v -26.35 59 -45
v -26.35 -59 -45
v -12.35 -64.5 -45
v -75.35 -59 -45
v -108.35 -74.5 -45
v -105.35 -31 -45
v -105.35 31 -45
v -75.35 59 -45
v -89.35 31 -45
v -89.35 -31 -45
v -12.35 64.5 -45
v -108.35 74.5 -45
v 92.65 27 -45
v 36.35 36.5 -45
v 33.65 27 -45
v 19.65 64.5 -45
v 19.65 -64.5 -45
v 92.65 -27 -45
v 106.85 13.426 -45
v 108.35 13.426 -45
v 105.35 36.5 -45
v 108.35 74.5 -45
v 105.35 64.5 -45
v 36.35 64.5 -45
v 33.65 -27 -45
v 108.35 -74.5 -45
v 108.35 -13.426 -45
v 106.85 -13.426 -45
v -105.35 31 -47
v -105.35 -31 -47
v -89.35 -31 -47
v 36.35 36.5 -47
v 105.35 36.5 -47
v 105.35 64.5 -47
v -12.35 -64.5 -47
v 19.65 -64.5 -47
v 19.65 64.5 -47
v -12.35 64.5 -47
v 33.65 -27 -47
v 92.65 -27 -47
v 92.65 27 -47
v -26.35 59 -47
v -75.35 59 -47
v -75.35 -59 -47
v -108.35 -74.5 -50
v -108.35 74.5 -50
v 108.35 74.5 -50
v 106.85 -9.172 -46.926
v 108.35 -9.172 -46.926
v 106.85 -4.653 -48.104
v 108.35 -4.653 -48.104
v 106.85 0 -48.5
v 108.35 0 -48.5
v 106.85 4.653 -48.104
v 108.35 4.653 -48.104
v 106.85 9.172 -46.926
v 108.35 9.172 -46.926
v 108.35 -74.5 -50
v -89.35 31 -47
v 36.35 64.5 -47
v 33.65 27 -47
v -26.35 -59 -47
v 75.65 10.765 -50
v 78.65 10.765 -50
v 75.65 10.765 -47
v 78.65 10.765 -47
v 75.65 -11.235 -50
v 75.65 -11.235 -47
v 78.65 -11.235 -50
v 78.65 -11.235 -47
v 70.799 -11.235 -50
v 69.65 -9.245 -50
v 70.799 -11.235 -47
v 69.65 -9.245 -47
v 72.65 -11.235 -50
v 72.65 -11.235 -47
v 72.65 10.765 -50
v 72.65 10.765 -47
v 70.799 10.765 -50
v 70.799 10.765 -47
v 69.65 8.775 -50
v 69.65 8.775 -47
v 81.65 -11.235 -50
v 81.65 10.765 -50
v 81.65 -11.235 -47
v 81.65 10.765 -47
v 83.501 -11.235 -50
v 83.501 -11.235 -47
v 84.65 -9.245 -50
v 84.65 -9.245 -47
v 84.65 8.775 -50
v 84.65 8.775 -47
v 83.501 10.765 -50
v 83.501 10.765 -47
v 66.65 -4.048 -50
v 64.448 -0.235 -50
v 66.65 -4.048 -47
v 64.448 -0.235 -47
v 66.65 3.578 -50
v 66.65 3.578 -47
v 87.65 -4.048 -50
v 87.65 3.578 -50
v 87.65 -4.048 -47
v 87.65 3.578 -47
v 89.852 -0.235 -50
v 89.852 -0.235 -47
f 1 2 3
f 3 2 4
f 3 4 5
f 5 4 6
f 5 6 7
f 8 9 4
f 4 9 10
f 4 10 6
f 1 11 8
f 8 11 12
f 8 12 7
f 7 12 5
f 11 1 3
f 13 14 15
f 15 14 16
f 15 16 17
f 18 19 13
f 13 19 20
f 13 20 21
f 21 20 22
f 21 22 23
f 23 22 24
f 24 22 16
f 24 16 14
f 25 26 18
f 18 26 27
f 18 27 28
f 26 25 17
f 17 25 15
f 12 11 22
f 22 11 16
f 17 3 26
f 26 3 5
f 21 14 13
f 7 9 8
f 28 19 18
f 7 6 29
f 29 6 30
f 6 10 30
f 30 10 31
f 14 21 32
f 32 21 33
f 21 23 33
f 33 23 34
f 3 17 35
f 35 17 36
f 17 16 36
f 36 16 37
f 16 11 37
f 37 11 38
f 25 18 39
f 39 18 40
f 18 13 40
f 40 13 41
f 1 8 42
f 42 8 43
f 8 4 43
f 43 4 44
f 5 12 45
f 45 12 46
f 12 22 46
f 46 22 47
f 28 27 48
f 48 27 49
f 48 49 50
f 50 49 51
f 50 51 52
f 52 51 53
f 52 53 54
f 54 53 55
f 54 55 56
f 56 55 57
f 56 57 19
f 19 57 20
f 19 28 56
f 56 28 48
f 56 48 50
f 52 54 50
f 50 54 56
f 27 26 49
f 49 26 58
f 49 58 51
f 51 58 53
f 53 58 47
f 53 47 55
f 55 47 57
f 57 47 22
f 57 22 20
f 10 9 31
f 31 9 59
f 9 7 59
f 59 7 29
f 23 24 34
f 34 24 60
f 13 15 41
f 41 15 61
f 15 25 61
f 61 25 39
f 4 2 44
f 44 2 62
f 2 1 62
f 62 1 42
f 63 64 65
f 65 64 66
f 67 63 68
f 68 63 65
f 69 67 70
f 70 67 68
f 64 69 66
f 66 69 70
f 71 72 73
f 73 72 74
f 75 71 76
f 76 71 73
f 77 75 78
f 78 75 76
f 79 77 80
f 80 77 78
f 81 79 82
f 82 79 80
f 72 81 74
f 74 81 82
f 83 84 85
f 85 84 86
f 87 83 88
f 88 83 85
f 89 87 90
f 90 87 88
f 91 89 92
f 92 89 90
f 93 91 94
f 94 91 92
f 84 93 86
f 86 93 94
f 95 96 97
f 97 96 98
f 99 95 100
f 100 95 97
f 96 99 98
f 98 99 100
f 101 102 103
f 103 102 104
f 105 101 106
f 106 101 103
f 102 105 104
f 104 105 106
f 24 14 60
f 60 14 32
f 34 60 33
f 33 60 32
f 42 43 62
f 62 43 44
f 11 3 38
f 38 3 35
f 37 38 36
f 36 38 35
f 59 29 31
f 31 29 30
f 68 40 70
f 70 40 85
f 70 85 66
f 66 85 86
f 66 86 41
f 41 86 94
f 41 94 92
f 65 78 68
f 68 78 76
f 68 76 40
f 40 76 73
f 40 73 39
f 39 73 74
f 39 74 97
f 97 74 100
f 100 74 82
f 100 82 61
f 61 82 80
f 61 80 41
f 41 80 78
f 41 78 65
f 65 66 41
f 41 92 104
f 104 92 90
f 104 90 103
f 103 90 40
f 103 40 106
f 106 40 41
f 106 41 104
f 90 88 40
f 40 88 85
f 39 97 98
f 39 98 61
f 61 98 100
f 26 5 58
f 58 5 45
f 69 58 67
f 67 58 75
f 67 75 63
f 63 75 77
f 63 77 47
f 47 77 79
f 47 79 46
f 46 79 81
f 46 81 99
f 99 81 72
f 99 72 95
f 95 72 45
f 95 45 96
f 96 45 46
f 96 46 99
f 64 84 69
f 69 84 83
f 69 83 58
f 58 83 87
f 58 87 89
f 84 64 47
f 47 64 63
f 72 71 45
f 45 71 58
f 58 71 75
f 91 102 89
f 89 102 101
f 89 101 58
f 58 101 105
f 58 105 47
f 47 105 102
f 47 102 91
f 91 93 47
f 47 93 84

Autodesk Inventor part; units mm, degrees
ref_plane "YZ Plane" through (0, 0, 0) normal (1, 0, 0) x (0, 1, 0)
ref_plane "XZ Plane" through (0, 0, 0) normal (0, 1, 0) x (-1, 0, 0)
ref_plane "XY Plane" through (0, 0, 0) normal (0, 0, 1) x (1, 0, 0)
sketch "Sketch1" plane through (0, 0, 0) normal (0, 0, 1) x (1, 0, 0)
  line L0 (-108.35, -74.5) -> (108.35, -74.5)
  line L1 (108.35, -74.5) -> (108.35, 74.5)
  line L2 (108.35, 74.5) -> (-108.35, 74.5)
  line L3 (-108.35, 74.5) -> (-108.35, -74.5)
  line L4 (-108.35, -74.5) -> (108.35, 74.5) construction
  line L5 (108.35, -74.5) -> (-108.35, 74.5) construction
  point P0 (0, 0)
  dimension "d0" = 216.7
  dimension "d1" = 149
extrude "MainInnerBodyExtrusion" add sketch "Sketch1" against normal blind 50
sketch "Sketch3" plane through (0, 0, 0) normal (0, 0, 1) x (1, 0, 0)
  line L0 (33.65, -27) -> (92.65, -27)
  line L1 (92.65, -27) -> (92.65, 27)
  line L2 (92.65, 27) -> (33.65, 27)
  line L3 (33.65, 27) -> (33.65, -27)
  line L4 (33.65, -27) -> (92.65, 27) construction
  line L5 (92.65, -27) -> (33.65, 27) construction
  line L6 (108.35, -74.5) -> (108.35, 74.5) projected
  line L7 (0, 0) -> (108.35, 0) construction
  line L8 (-108.35, -74.5) -> (-108.35, 74.5) construction
  line L9 (-108.35, 74.5) -> (-108.35, -74.5) projected
  point P0 (63.15, 0)
  point P1 (63.15, 0)
  dimension "d5" = 15.7
  dimension "d6" = 54
  dimension "d7" = 59
extrude "HoleForCamerabase" cut sketch "Sketch3" against normal blind 47
sketch "Sketch4" plane through (0, 0, 0) normal (0, 0, 1) x (1, 0, 0)
  line L0 (0, 0) -> (-108.35, 0) construction
  line L1 (-108.35, -74.5) -> (-108.35, 74.5) construction
  line L2 (-105.35, -31) -> (-89.35, -31)
  line L3 (-89.35, -31) -> (-89.35, 31)
  line L4 (-89.35, 31) -> (-105.35, 31)
  line L5 (-105.35, 31) -> (-105.35, -31)
  line L6 (-105.35, -31) -> (-89.35, 31) construction
  line L7 (-89.35, -31) -> (-105.35, 31) construction
  point P0 (-97.35, 0)
  dimension "d13" = 16
  dimension "d14" = 62
  dimension "d15" = 3
extrude "HoleForFan" cut sketch "Sketch4" against normal blind 47
sketch "Sketch6" plane through (0, 0, 0) normal (0, 0, 1) x (1, 0, 0)
  line L0 (-108.35, -74.5) -> (-108.35, 74.5) construction
  line L1 (-108.35, 0) -> (108.35, 0) construction
  line L2 (108.35, 74.5) -> (108.35, -74.5) construction
  line L3 (-12.35, -64.5) -> (19.65, -64.5)
  line L4 (19.65, -64.5) -> (19.65, 64.5)
  line L5 (19.65, 64.5) -> (-12.35, 64.5)
  line L6 (-12.35, 64.5) -> (-12.35, -64.5)
  line L7 (-12.35, -64.5) -> (19.65, 64.5) construction
  line L8 (19.65, -64.5) -> (-12.35, 64.5) construction
  line L9 (33.65, -27) -> (33.65, 27) projected
  point P0 (0, 0)
  point P1 (3.65, 0)
  dimension "d20" = 32
  dimension "d21" = 129
  dimension "d88" = 14
extrude "HoleForPi" cut sketch "Sketch6" against normal blind 47
sketch "Sketch7" plane through (0, 0, 0) normal (0, 0, 1) x (1, 0, 0)
  line L0 (0, 0) -> (-108.35, 0) construction
  line L1 (-108.35, 74.5) -> (-108.35, -74.5) construction
  line L2 (-75.35, -59) -> (-26.35, -59)
  line L3 (-26.35, -59) -> (-26.35, 59)
  line L4 (-26.35, 59) -> (-75.35, 59)
  line L5 (-75.35, 59) -> (-75.35, -59)
  line L6 (-75.35, -59) -> (-26.35, 59) construction
  line L7 (-26.35, -59) -> (-75.35, 59) construction
  line L8 (-12.35, -64.5) -> (-12.35, 64.5) projected
  line L9 (-89.35, 31) -> (-89.35, -31) construction
  point P0 (-50.85, 0)
  dimension "d25" = 14
  dimension "d26" = 49
  dimension "d27" = 118
extrude "HoleForPoeAdapter" cut sketch "Sketch7" against normal blind 47
sketch "Sketch10" plane through (0, 0, 0) normal (0, 0, 1) x (1, 0, 0)
  line L0 (36.35, 36.5) -> (105.35, 36.5)
  line L1 (105.35, 36.5) -> (105.35, 64.5)
  line L2 (105.35, 64.5) -> (36.35, 64.5)
  line L3 (36.35, 64.5) -> (36.35, 36.5)
  line L4 (36.35, 36.5) -> (105.35, 64.5) construction
  line L5 (105.35, 36.5) -> (36.35, 64.5) construction
  line L6 (108.35, 74.5) -> (-108.35, 74.5) projected
  line L7 (108.35, -74.5) -> (108.35, 74.5) projected
  point P0 (0, 0)
  point P1 (70.85, 50.5)
  point P2 (94.85, 8.5)
  point P3 (105.35, 50.5)
  dimension "d36" = 69
  dimension "d37" = 28
  dimension "d85" = 3
extrude "HoleForThermister" cut sketch "Sketch10" against normal blind 47
sketch "Sketch11" plane through (0, 0, 0) normal (0, 0, 1) x (1, 0, 0)
  line L0 (55.35, -64.5) -> (105.35, -64.5)
  line L1 (105.35, -64.5) -> (105.35, -47.5)
  line L2 (105.35, -47.5) -> (55.35, -47.5)
  line L3 (55.35, -47.5) -> (55.35, -64.5)
  line L4 (55.35, -64.5) -> (105.35, -47.5) construction
  line L5 (105.35, -64.5) -> (55.35, -47.5) construction
  line L6 (108.35, -74.5) -> (108.35, 74.5) projected
  line L7 (-108.35, -74.5) -> (108.35, -74.5) projected
  line L8 (92.65, -27) -> (33.65, -27) projected
  line L9 (19.65, 64.5) -> (19.65, -64.5) projected
  point P0 (0, 0)
  point P1 (80.35, -56)
  point P2 (94.85, -8.5)
  point P3 (80.35, -47.5)
  point P4 (55.35, -56)
  point P5 (108.35, 74.5)
  dimension "d42" = 50
  dimension "d43" = 17
  dimension "d86" = 3
  dimension "d87" = 10
extrude "HoleForSensor" cut sketch "Sketch11" against normal blind 31.5
sketch "Sketch15" plane through (-108.35, -74.5, 0) normal (-1, 0, 0) x (0, 0, 1)
  line L0 (0, 149) -> (0, 0) projected
  line L1 (0, 149) -> (-50, 149) projected
  line L2 (-50, 0) -> (-50, 149) projected
  line L3 (0, 0) -> (-50, 0) projected
  line L4 (0, 0) -> (0, 149) projected
  line L5 (0, 101.5) -> (0, 47.5) projected
  line L6 (0, 74.5) -> (-30, 74.5) construction
  line L7 (0, 76.5) -> (-29.9333, 76.5)
  line L8 (0, 84.5) -> (-28.2843, 84.5)
  line L9 (0, 80.5) -> (-29.3939, 80.5)
  line L10 (0, 76.5) -> (0, 74.5)
  line L11 (0, 88.5) -> (-26.533, 88.5)
  line L12 (0, 92.5) -> (-24, 92.5)
  line L13 (-20.5913, 97.5) -> (0, 97.5)
  line L14 (-14.9666, 101.5) -> (0, 101.5)
  line L15 (0, 84.5) -> (0, 80.5)
  line L16 (0, 101.5) -> (0, 97.5)
  line L17 (0, 92.5) -> (0, 88.5)
  line L18 (0, 72.5) -> (-29.9333, 72.5)
  line L19 (0, 64.5) -> (-28.2843, 64.5)
  line L20 (0, 68.5) -> (-29.3939, 68.5)
  line L21 (0, 72.5) -> (0, 74.5)
  line L22 (0, 60.5) -> (-26.533, 60.5)
  line L23 (0, 56.5) -> (-24, 56.5)
  line L24 (-20.5913, 51.5) -> (0, 51.5)
  line L25 (-14.9666, 47.5) -> (0, 47.5)
  line L26 (0, 64.5) -> (0, 68.5)
  line L27 (0, 56.5) -> (0, 60.5)
  line L28 (0, 47.5) -> (0, 51.5)
  line L29 (0, 72.5) -> (0, 76.5)
  line L30 (0, 80.5) -> (0, 84.5)
  line L31 (0, 88.5) -> (0, 92.5)
  line L32 (0, 97.5) -> (0, 149)
  arc A0 (-28.2843, 84.5) -> (-29.3939, 80.5) centre (0, 74.5) ccw
  arc A1 (-14.9666, 101.5) -> (-20.5913, 97.5) centre (0, 74.5) ccw
  arc A2 (-24, 92.5) -> (-26.533, 88.5) centre (0, 74.5) ccw
  arc A3 (-29.9333, 76.5) -> (-29.9333, 72.5) centre (0, 74.5) ccw
  arc A4 (-29.3939, 68.5) -> (-28.2843, 64.5) centre (0, 74.5) ccw
  arc A5 (-26.533, 60.5) -> (-24, 56.5) centre (0, 74.5) ccw
  arc A6 (-20.5913, 51.5) -> (-14.9666, 47.5) centre (0, 74.5) ccw
  point P0 (0, 74.5)
  point P1 (0, 82)
  point P2 (0, 67.0167)
  point P3 (0, 4.25)
  point P4 (-10.2956, 97.5)
  point P5 (0, 47.5)
  point P6 (0, 51.5)
  point P7 (0, 56.5)
  point P8 (0, 60.5)
  point P9 (0, 64.5)
  point P10 (0, 68.5)
  point P11 (0, 72.5)
  point P12 (0, 80.5)
  point P13 (0, 84.5)
  point P14 (0, 88.5)
  point P15 (0, 92.5)
  point P16 (0, 97.5)
  dimension "d69" = 2
  dimension "d71" = 4
  dimension "d72" = 4
  dimension "d73" = 4
  dimension "d75" = 4
  dimension "d142" = 30
extrude "SlotsForRearFan" cut sketch "Sketch15" against normal up to surface (3 mm away) contours L0 L13 A1 L14 | L0 L11 A2 L12 | L25 A6 L24 L0 | L0 L9 A0 L8 | L23 A5 L22 L0 | L0 L18 A3 L7 | L19 A4 L20 L0
sketch "Sketch16" plane through (0, 0, -47) normal (0, 0, 1) x (1, 0, 0)
  line L0 (92.65, 27) -> (92.65, -27) projected
  line L1 (77.15, 10.765) -> (77.15, -11.235) construction
  line L2 (75.65, 10.765) -> (75.65, -11.235)
  line L3 (72.65, -11.235) -> (72.65, 10.765)
  line L4 (69.65, 8.7746) -> (69.65, -9.2446)
  line L5 (66.65, 3.5785) -> (66.65, -4.0485)
  line L6 (78.65, 10.765) -> (78.65, -11.235)
  line L7 (81.65, -11.235) -> (81.65, 10.765)
  line L8 (84.65, 8.7746) -> (84.65, -9.2446)
  line L9 (87.65, 3.5785) -> (87.65, -4.0485)
  line L10 (70.7991, 10.765) -> (72.65, 10.765)
  line L11 (72.65, -11.235) -> (70.7991, -11.235)
  line L12 (70.7991, -11.235) -> (69.65, -9.2446)
  line L13 (66.65, -4.0485) -> (64.4483, -0.235)
  line L14 (64.4483, -0.235) -> (66.65, 3.5785)
  line L15 (69.65, 8.7746) -> (70.7991, 10.765)
  line L16 (75.65, 10.765) -> (78.65, 10.765)
  line L17 (81.65, 10.765) -> (83.5009, 10.765)
  line L18 (83.5009, -11.235) -> (81.65, -11.235)
  line L19 (78.65, -11.235) -> (75.65, -11.235)
  line L20 (89.8517, -0.235) -> (87.65, -4.0485)
  line L21 (84.65, -9.2446) -> (83.5009, -11.235)
  line L22 (83.5009, 10.765) -> (84.65, 8.7746)
  line L23 (87.65, 3.5785) -> (89.8517, -0.235)
  point P0 (0, 0)
  point P1 (77.15, -0.235)
  point P2 (66.65, -0.235)
  dimension "d78" = 15.5
  dimension "d89" = 1.5
  dimension "d90" = 3
  dimension "d91" = 3
  dimension "d92" = 3
extrude "VentForCamera" cut sketch "Sketch16" against normal through all
sketch "Sketch18" plane through (108.35, -74.5, 0) normal (1, 0, 0) x (0, 0, -1)
  line L0 (0, 74.5) -> (29.6767, 74.5) construction
  arc A0 (24, 66.5) -> (24, 82.5) centre (24, 74.5) ccw
  line L1 (0, 0) -> (0, 149) projected
  line L2 (24, 82.5) -> (0, 82.5)
  line L3 (24, 66.5) -> (0, 66.5)
  line L4 (0, 82.5) -> (0, 66.5)
  point P0 (0, 74.5)
  dimension "d97" = 16
  dimension "d137" = 24
extrude "HoleForLens" cut sketch "Sketch18" against normal up to surface (15.7 mm away)
sketch "Sketch23" plane through (0, 0, 0) normal (0, 0, 1) x (1, 0, 0)
  line L0 (-103.35, -69.5) -> (103.35, -69.5) construction
  line L1 (103.35, -69.5) -> (103.35, 69.5) construction
  line L2 (103.35, 69.5) -> (-103.35, 69.5) construction
  line L3 (-103.35, 69.5) -> (-103.35, -69.5) construction
  line L4 (-103.35, -69.5) -> (103.35, 69.5) construction
  line L5 (103.35, -69.5) -> (-103.35, 69.5) construction
  line L6 (108.35, -74.5) -> (108.35, -8) projected
  line L7 (108.35, 74.5) -> (-108.35, 74.5) projected
  line L8 (-108.35, -27) -> (-108.35, -74.5) projected
  line L9 (-108.35, 74.5) -> (-108.35, 27) projected
  line L10 (108.35, 8) -> (108.35, 74.5) projected
  point P0 (0, 0)
  point P1 (32.15, -69.5)
  point P2 (-32.15, -69.5)
  point P3 (-32.15, 69.5)
  point P4 (32.15, 69.5)
  dimension "d106" = 5
  dimension "d108" = 5
  dimension "d222" = 76.2
  dimension "d223" = 76.2
  dimension "d224" = 76.2
  dimension "d225" = 76.2
hole "Hole for 6-32 Insert" at (-103.35, 69.5, 0) at (103.35, 69.5, 0) at (103.35, -69.5, 0) at (-103.35, -69.5, 0) at (-32.15, -69.5, 0) at (32.15, -69.5, 0) at (-32.15, 69.5, 0) at (32.15, 69.5, 0) direction (0, 0, -1) diameter 4.7 depth 7.2 tip angle 118 counterbore diameter 5.54 counterbore depth 5.55
hole "Screw hole for 6-32 screw" at (-103.35, -69.5, 0) at (103.35, -69.5, 0) at (103.35, 69.5, 0) at (-103.35, 69.5, 0) direction (0, 0, -1) diameter 3.797 depth 15 tip angle 118 clearance for "Hex Machine Screw" size "#6" standard "Ansi Unified Screw Threads"
sketch "Sketch24" plane through (-108.35, -74.5, 0) normal (0, -1, 0) x (1, 0, 0)
  line L0 (0, -50) -> (216.7, -50) construction
  line L1 (216.7, 0) -> (201, 0) construction
  line L2 (0, 0) -> (0, -50) projected
  line L3 (108.35, -25) -> (0, -25) construction
  line L4 (108.35, -25) -> (216.7, -24.9775) construction
  line L5 (216.7, 0) -> (216.7, -50) construction
  point P0 (108.35, 0)
  dimension "d226" = 25
  dimension "d227" = 108.35
hole "Side hole for 1-4 20 insert" at (0, -74.5, -25) direction (0, 1, 0) diameter 7.666 depth 9.53 tip angle 118 counterbore diameter 8.406 counterbore depth 7.41 clearance for "Hex Machine Screw" size "1/4" standard "Ansi Unified Screw Threads"
mirror "Mirror for side insert" about plane through (0, 0, 0) normal (0, 1, 0) of "Side hole for 1-4 20 insert"
sketch "Sketch25" plane through (0, 0, 0) normal (0, 0, 1) x (1, 0, 0)
  line L0 (108.35, 74.5) -> (-108.35, 74.5) projected
  line L1 (-108.35, 74.5) -> (-108.35, 27) projected
  line L2 (-108.35, -74.5) -> (108.35, -74.5) projected
  line L3 (78.65, -11.235) -> (75.65, -11.235) projected
  line L4 (75.65, -11.235) -> (75.65, 10.765) projected
  line L5 (75.65, 10.765) -> (78.65, 10.765) projected
  line L6 (78.65, 10.765) -> (78.65, -11.235) projected
  line L7 (70.7991, 10.765) -> (72.65, 10.765) projected
  line L8 (72.65, 10.765) -> (72.65, -11.235) projected
  line L9 (72.65, -11.235) -> (70.7991, -11.235) projected
  line L10 (70.7991, -11.235) -> (69.65, -9.2446) projected
  line L11 (69.65, -9.2446) -> (69.65, 8.7746) projected
  line L12 (69.65, 8.7746) -> (70.7991, 10.765) projected
  line L13 (84.65, 8.7746) -> (84.65, -9.2446) projected
  line L14 (84.65, -9.2446) -> (83.5009, -11.235) projected
  line L15 (83.5009, -11.235) -> (81.65, -11.235) projected
  line L16 (81.65, -11.235) -> (81.65, 10.765) projected
  line L17 (81.65, 10.765) -> (83.5009, 10.765) projected
  line L18 (83.5009, 10.765) -> (84.65, 8.7746) projected
  line L19 (66.65, 3.5785) -> (66.65, -4.0485) projected
  line L20 (66.65, -4.0485) -> (64.4483, -0.235) projected
  line L21 (64.4483, -0.235) -> (66.65, 3.5785) projected
  line L22 (89.8517, -0.235) -> (87.65, -4.0485) projected
  line L23 (87.65, -4.0485) -> (87.65, 3.5785) projected
  line L24 (87.65, 3.5785) -> (89.8517, -0.235) projected
  line L25 (92.65, 27) -> (92.65, -27) projected
  line L26 (33.65, 27) -> (92.65, 27) projected
  line L27 (33.65, -27) -> (33.65, 27) projected
  line L28 (92.65, -27) -> (33.65, -27) projected
  line L29 (108.35, -74.5) -> (108.35, -8) projected
  line L30 (108.35, 8) -> (108.35, 74.5) projected
  line L31 (-105.35, -64.5) -> (105.35, -64.5)
  line L32 (105.35, -64.5) -> (105.35, 64.5)
  line L33 (105.35, 64.5) -> (-105.35, 64.5)
  line L34 (-105.35, 64.5) -> (-105.35, -64.5)
  line L35 (-105.35, -64.5) -> (105.35, 64.5) construction
  line L36 (105.35, -64.5) -> (-105.35, 64.5) construction
  line L37 (-26.35, 59) -> (-26.35, -59) projected
  point P0 (0, 0)
  dimension "d138" = 10
  dimension "d139" = 3
extrude "Extrusion18" cut sketch "Sketch25" against normal blind 25 contours L34 L33 L32 L31
sketch "Sketch26" plane through (-108.35, -74.5, -50) normal (-1, 0, 0) x (0, 0, 1)
  arc A0 (50, 124) -> (50, 134) centre (50, 129) ccw
  circle A1 centre (50, 129) radius 5
  point P0 (50, 74.5)
  point P1 (50, 124)
extrude "Extrusion19" cut sketch "Sketch26" against normal up to surface (3 mm away)
sketch "Sketch30" plane through (108.35, -74.5, -50) normal (1, 0, 0) x (0, 0, -1)
  circle A0 centre (-29, 74.5) radius 27.5
  line L0 (0, 149) -> (0, 0) projected
  circle A1 centre (-29, 74.5) radius 23
  line L1 (-50, 0) -> (-50, 66.5) projected
  point P0 (-50, 74.5)
  dimension "d162" = 55
  dimension "d163" = 29
  dimension "d164" = 46
  dimension "d165" = 21
extrude "Extrusion20" cut sketch "Sketch30" against normal blind 1.5
sketch "Sketch35" plane through (108.35, -74.5, -50) normal (1, 0, 0) x (0, 0, -1)
  circle A0 centre (-13, 5) radius 2.4257
  circle A1 centre (-13, 144) radius 2.4257
  line L0 (-50, 0) -> (0, 0) projected
  line L1 (-50, 149) -> (0, 149) projected
  line L2 (-3, 139) -> (-3, 10) projected
  point P0 (-50, 74.5)
  dimension "d215" = 4.8514
  dimension "d216" = 5
  dimension "d217" = 5
  dimension "d218" = 10
  dimension "d219" = 10
extrude "Extrusion21" cut sketch "Sketch35" against normal blind 9.525
sketch "Sketch36" plane through (-108.35, -74.5, 0) normal (0, -1, 0) x (1, 0, 0)
  line L0 (0, 0) -> (0, -50) projected
  line L1 (216.7, 0) -> (216.7, -50) projected
  line L2 (216.7, -50) -> (0, -50) projected
  line L3 (0, 0) -> (216.7, 0) projected
  line L4 (3, 0) -> (0, 0) projected
  line L5 (0, 0) -> (216.7, 0)
  line L6 (216.7, 0) -> (216.7, -45)
  line L7 (216.7, -45) -> (0, -45)
  line L8 (0, -45) -> (0, 0)
  point P0 (108.35, 0)
  point P1 (0, -45)
  dimension "d228" = 45
extrude "Extrusion22" cut sketch "Sketch36" against normal through all contours L3 L1 L7 L0
equation "\"d0\" = newCaseLength"
equation "\"d1\" = caseWidth"
equation "\"d2\" = caseDepth"
equation "\"d5\" = lensLength"
equation "\"d6\" = cameraWidth"
equation "\"d7\" = cameraLength"
equation "\"d8\" = maxComponentDepth"
equation "\"d13\" = fanDepth"
equation "\"d14\" = fanWidth"
equation "\"d15\" = rearWallThickness"
equation "\"d16\" = maxComponentDepth"
equation "\"d20\" = piCaseDepth"
equation "\"d21\" = piCaseLength"
equation "\"d88\" = minDelta"
equation "\"d22\" = maxComponentDepth"
equation "\"d25\" = minDelta"
equation "\"d26\" = poeWidth"
equation "\"d27\" = poeLength"
equation "\"d28\" = maxComponentDepth"
equation "\"d36\" = thermisterLength"
equation "\"d37\" = thermisterWidth"
equation "\"d85\" = frontWallThickness"
equation "\"d38\" = maxComponentDepth"
equation "\"d42\" = sensorLength"
equation "\"d43\" = sensorWidth"
equation "\"d86\" = frontWallThickness"
equation "\"d87\" = outsideWallThickness"
equation "\"d46\" = cutoutDepth"
equation "\"outsideWallThickness\" = 10"
equation "\"caseWidth\" = piCaseLength + 2 * outsideWallThickness"
equation "\"cameraWidth\" = 54"
equation "\"oneHalfCaseDepth\" = piCaseWidth"
equation "\"caseLength\" = 189.7"
equation "\"cameraLength\" = 59"
equation "\"lensLength\" = 15.7"
equation "\"piCaseWidth\" = 63"
equation "\"piCaseDepth\" = 32"
equation "\"poeDepth\" = 38"
equation "\"piEthernetCableReliefLength\" = 35"
equation "\"poeEthernetCableReliefLength\" = 35"
equation "\"thermisterDepth\" = 18"
equation "\"sensorDepth\" = 11"
equation "\"cutoutDepth\" = 0.5 * piCaseWidth"
equation "\"thickenDistance\" = 1"
equation "\"bottomOfCaseWallThickness\" = 3"
equation "\"rearWallThickness\" = 3"
equation "\"maxComponentDepth\" = extraCutoutDepth + 0.5 * piCaseWidth"
equation "\"caseDepth\" = maxComponentDepth + bottomOfCaseWallThickness"
equation "\"minDelta\" = 14"
equation "\"fanCutoutDepth\" = 0.5 * fanLength + extraCutoutDepth + thickenDistance"
equation "\"newCaseLength\" = cameraLength + piCaseDepth + fanDepth + poeWidth + rearWallThickness + 3 * minDelta + lensLength"
equation "\"frontWallThickness\" = 3"
equation "\"d95\" = lensDiameter"
equation "\"extraCutoutDepth\" = 15.5"
equation "\"fanDepth\" = 16"
equation "\"fanWidth\" = 62"
equation "\"piCaseLength\" = 129"
equation "\"poeWidth\" = 49"
equation "\"poeLength\" = 118"
equation "\"thermisterLength\" = 69"
equation "\"thermisterWidth\" = 28"
equation "\"sensorLength\" = 50"
equation "\"sensorWidth\" = 17"
equation "\"fanLength\" = 60"
equation "\"lensDiameter\" = 15"
properties part number "TestPlate" material "PC/ABS Plastic"
